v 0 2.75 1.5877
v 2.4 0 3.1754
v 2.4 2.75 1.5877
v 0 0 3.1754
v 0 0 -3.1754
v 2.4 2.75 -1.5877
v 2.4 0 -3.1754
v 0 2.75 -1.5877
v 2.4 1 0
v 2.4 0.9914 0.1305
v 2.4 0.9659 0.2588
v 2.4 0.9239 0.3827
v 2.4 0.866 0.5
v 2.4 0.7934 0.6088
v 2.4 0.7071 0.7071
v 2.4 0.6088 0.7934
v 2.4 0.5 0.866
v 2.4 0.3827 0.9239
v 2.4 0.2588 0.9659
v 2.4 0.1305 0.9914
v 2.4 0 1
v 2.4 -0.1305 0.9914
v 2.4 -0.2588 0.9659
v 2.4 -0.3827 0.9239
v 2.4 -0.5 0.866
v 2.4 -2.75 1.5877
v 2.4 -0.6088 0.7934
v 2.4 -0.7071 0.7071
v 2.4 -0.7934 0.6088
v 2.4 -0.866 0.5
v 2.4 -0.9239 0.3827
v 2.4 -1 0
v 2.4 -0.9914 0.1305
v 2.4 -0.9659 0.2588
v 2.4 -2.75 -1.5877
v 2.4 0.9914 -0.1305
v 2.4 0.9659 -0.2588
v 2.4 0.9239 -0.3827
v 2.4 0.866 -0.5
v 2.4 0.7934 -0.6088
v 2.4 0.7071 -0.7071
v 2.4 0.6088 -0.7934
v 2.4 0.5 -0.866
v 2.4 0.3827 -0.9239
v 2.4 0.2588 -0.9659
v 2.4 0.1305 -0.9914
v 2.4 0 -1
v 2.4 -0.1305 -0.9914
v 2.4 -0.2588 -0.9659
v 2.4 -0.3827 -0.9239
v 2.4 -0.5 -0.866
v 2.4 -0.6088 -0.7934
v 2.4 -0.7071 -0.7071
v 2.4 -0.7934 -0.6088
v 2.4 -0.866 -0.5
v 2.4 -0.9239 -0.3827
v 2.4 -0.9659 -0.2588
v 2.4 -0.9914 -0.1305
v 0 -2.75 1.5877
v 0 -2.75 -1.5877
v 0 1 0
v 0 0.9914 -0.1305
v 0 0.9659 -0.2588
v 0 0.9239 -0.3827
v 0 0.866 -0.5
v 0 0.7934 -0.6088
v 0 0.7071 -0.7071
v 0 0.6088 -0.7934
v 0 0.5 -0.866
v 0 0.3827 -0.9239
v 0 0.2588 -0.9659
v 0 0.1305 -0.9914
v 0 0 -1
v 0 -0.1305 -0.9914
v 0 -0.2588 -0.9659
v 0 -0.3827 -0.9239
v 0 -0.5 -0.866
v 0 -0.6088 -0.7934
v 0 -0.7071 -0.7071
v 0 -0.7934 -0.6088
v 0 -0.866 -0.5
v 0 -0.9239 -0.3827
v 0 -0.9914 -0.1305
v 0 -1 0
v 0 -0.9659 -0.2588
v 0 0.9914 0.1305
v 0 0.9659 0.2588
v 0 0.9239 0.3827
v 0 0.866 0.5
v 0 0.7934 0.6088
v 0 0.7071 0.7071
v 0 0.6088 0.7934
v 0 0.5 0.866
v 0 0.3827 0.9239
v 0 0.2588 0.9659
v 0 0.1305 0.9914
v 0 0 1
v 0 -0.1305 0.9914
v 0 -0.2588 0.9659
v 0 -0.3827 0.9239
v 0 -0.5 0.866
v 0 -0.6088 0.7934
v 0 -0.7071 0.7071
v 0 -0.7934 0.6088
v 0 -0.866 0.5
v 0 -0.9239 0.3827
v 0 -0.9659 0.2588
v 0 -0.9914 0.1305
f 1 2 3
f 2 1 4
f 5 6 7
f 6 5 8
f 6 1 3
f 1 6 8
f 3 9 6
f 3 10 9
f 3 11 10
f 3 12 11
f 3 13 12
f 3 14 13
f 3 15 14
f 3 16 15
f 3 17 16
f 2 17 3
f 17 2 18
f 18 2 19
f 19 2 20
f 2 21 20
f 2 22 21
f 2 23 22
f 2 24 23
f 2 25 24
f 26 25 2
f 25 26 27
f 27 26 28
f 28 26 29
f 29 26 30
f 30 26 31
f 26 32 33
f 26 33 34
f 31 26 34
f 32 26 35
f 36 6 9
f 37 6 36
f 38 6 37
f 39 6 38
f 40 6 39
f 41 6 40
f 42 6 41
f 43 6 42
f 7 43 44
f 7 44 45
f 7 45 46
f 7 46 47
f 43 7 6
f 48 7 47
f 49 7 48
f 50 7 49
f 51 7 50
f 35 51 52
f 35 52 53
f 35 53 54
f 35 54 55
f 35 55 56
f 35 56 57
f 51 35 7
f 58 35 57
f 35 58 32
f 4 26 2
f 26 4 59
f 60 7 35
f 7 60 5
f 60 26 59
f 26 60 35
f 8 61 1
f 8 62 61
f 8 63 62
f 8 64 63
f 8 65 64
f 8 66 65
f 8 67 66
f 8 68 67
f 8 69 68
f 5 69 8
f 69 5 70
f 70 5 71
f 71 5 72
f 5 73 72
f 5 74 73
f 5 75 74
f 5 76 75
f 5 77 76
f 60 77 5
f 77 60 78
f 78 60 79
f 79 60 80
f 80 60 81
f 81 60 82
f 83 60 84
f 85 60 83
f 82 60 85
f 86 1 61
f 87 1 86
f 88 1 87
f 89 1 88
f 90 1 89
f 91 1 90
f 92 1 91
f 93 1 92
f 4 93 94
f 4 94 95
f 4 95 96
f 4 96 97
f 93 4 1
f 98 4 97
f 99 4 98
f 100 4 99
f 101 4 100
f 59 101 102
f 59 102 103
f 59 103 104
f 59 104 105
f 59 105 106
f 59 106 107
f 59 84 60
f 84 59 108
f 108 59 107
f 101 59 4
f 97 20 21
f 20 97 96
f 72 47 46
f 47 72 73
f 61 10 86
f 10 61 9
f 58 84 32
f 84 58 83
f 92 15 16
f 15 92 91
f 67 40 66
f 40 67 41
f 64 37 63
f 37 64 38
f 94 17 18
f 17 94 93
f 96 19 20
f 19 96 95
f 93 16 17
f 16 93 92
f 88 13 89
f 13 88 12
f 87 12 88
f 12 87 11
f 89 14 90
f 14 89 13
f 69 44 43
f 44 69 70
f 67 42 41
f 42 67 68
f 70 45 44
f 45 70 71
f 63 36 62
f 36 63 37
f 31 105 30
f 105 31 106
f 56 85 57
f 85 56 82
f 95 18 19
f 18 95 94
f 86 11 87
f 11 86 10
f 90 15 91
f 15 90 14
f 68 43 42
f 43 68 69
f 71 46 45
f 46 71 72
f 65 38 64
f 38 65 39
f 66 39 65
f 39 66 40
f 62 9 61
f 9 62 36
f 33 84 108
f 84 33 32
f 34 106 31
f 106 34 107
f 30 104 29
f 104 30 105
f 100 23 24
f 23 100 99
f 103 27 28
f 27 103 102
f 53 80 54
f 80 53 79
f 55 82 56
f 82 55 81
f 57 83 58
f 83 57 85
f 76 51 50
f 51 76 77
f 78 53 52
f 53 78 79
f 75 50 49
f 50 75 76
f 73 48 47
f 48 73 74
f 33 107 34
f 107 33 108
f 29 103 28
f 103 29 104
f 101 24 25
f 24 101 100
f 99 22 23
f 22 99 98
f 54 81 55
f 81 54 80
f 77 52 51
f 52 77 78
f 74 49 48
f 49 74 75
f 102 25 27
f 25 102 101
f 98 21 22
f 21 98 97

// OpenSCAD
// file: ../../lib/nutsnbolts/data-access.scad
// Norm Nuts and Bolts - a OpenSCAD library
// Copyright (C) 2012  Johannes Kneer

// This program is free software: you can redistribute it and/or modify
// it under the terms of the GNU General Public License as published by
// the Free Software Foundation, either version 3 of the License, or
// (at your option) any later version.

// This program is distributed in the hope that it will be useful,
// but WITHOUT ANY WARRANTY; without even the implied warranty of
// MERCHANTABILITY or FITNESS FOR A PARTICULAR PURPOSE.  See the
// GNU General Public License for more details.

// You should have received a copy of the GNU General Public License
// along with this program.  If not, see <http://www.gnu.org/licenses/>.


// DATABASE ACCESS FUNCTIONS AND CONSTANTS



// == CONSTANTS ==

// screw table access keys
_NB_S_DESC            = 0;
_NB_S_FAMKEY			    = 1;
_NB_S_LENGTH          = 2;
_NB_S_NOTHREAD_LENGTH = 3;

_NB_F_DESC			      = 0;
_NB_F_OUTER_DIA       = 1;
_NB_F_INNER_DIA       = 2;
_NB_F_LEAD            = 3;
_NB_F_KEY             = 4;
_NB_F_KEY_DEPTH       = 5;
_NB_F_HEAD_HEIGHT     = 6;
_NB_F_HEAD_DIA        = 7;
_NB_F_NUT_KEY         = 8;
_NB_F_NUT_HEIGHT      = 9;
_NB_F_PITCH_FINE      = 10;
_NB_F_PITCH_MEDIUM    = 11;
_NB_F_PITCH_COARSE    = 12;


// == FUNCTIONS ==

// _get_screw("descriptor")   with descriptor = M8x25
//   find the line for a general object in the data matrix

function _get_screw(n) = data_screw[search([n], data_screw)[0]];
function _get_screw_fam(n) = data_screw_fam[search([_get_screw(n)[_NB_S_FAMKEY]], data_screw_fam)[0]];

function _get_fam(n) = data_screw_fam[search([n], data_screw_fam)[0]];


// _get_XXXXX("descriptor") functions
// find a single property in the database

function _get_desc(n)        = _get_screw(n)[_NB_S_DESC];
function _get_famkey(n)         = _get_screw(n)[_NB_S_FAMKEY];
function _get_length(n)      = _get_screw(n)[_NB_S_LENGTH];
function _get_nt_length(n)   = _get_screw(n)[_NB_S_NOTHREAD_LENGTH];

function _get_outer_dia(n)   = _get_screw_fam(n)[_NB_F_OUTER_DIA];
function _get_inner_dia(n)   = _get_screw_fam(n)[_NB_F_INNER_DIA];
function _get_lead(n)        = _get_screw_fam(n)[_NB_F_LEAD];
function _get_head_height(n) = _get_screw_fam(n)[_NB_F_HEAD_HEIGHT];
function _get_head_dia(n)    = _get_screw_fam(n)[_NB_F_HEAD_DIA];
function _get_nut_key(n)     = _get_screw_fam(n)[_NB_F_NUT_KEY];
function _get_nut_height(n)  = _get_screw_fam(n)[_NB_F_NUT_HEIGHT];
function _get_fine_pitch(n)  = _get_screw_fam(n)[_NB_F_PITCH_FINE];
function _get_medium_pitch(n)  = _get_screw_fam(n)[_NB_F_PITCH_MEDIUM];
function _get_coarse_pitch(n)  = _get_screw_fam(n)[_NB_F_PITCH_COARSE];
// main file
/**********************************************************************************************************************
 **
 ** parts/vitamins/nut_M3.scad
 **
 ** This file renders a nut of the dimensions specified by the file name.
 **
 **********************************************************************************************************************/

include <../../lib/nutsnbolts/cyl_head_bolt.scad>;

$fn = 48;
rotate([0, -90, 0])
	nut("M3"); 
